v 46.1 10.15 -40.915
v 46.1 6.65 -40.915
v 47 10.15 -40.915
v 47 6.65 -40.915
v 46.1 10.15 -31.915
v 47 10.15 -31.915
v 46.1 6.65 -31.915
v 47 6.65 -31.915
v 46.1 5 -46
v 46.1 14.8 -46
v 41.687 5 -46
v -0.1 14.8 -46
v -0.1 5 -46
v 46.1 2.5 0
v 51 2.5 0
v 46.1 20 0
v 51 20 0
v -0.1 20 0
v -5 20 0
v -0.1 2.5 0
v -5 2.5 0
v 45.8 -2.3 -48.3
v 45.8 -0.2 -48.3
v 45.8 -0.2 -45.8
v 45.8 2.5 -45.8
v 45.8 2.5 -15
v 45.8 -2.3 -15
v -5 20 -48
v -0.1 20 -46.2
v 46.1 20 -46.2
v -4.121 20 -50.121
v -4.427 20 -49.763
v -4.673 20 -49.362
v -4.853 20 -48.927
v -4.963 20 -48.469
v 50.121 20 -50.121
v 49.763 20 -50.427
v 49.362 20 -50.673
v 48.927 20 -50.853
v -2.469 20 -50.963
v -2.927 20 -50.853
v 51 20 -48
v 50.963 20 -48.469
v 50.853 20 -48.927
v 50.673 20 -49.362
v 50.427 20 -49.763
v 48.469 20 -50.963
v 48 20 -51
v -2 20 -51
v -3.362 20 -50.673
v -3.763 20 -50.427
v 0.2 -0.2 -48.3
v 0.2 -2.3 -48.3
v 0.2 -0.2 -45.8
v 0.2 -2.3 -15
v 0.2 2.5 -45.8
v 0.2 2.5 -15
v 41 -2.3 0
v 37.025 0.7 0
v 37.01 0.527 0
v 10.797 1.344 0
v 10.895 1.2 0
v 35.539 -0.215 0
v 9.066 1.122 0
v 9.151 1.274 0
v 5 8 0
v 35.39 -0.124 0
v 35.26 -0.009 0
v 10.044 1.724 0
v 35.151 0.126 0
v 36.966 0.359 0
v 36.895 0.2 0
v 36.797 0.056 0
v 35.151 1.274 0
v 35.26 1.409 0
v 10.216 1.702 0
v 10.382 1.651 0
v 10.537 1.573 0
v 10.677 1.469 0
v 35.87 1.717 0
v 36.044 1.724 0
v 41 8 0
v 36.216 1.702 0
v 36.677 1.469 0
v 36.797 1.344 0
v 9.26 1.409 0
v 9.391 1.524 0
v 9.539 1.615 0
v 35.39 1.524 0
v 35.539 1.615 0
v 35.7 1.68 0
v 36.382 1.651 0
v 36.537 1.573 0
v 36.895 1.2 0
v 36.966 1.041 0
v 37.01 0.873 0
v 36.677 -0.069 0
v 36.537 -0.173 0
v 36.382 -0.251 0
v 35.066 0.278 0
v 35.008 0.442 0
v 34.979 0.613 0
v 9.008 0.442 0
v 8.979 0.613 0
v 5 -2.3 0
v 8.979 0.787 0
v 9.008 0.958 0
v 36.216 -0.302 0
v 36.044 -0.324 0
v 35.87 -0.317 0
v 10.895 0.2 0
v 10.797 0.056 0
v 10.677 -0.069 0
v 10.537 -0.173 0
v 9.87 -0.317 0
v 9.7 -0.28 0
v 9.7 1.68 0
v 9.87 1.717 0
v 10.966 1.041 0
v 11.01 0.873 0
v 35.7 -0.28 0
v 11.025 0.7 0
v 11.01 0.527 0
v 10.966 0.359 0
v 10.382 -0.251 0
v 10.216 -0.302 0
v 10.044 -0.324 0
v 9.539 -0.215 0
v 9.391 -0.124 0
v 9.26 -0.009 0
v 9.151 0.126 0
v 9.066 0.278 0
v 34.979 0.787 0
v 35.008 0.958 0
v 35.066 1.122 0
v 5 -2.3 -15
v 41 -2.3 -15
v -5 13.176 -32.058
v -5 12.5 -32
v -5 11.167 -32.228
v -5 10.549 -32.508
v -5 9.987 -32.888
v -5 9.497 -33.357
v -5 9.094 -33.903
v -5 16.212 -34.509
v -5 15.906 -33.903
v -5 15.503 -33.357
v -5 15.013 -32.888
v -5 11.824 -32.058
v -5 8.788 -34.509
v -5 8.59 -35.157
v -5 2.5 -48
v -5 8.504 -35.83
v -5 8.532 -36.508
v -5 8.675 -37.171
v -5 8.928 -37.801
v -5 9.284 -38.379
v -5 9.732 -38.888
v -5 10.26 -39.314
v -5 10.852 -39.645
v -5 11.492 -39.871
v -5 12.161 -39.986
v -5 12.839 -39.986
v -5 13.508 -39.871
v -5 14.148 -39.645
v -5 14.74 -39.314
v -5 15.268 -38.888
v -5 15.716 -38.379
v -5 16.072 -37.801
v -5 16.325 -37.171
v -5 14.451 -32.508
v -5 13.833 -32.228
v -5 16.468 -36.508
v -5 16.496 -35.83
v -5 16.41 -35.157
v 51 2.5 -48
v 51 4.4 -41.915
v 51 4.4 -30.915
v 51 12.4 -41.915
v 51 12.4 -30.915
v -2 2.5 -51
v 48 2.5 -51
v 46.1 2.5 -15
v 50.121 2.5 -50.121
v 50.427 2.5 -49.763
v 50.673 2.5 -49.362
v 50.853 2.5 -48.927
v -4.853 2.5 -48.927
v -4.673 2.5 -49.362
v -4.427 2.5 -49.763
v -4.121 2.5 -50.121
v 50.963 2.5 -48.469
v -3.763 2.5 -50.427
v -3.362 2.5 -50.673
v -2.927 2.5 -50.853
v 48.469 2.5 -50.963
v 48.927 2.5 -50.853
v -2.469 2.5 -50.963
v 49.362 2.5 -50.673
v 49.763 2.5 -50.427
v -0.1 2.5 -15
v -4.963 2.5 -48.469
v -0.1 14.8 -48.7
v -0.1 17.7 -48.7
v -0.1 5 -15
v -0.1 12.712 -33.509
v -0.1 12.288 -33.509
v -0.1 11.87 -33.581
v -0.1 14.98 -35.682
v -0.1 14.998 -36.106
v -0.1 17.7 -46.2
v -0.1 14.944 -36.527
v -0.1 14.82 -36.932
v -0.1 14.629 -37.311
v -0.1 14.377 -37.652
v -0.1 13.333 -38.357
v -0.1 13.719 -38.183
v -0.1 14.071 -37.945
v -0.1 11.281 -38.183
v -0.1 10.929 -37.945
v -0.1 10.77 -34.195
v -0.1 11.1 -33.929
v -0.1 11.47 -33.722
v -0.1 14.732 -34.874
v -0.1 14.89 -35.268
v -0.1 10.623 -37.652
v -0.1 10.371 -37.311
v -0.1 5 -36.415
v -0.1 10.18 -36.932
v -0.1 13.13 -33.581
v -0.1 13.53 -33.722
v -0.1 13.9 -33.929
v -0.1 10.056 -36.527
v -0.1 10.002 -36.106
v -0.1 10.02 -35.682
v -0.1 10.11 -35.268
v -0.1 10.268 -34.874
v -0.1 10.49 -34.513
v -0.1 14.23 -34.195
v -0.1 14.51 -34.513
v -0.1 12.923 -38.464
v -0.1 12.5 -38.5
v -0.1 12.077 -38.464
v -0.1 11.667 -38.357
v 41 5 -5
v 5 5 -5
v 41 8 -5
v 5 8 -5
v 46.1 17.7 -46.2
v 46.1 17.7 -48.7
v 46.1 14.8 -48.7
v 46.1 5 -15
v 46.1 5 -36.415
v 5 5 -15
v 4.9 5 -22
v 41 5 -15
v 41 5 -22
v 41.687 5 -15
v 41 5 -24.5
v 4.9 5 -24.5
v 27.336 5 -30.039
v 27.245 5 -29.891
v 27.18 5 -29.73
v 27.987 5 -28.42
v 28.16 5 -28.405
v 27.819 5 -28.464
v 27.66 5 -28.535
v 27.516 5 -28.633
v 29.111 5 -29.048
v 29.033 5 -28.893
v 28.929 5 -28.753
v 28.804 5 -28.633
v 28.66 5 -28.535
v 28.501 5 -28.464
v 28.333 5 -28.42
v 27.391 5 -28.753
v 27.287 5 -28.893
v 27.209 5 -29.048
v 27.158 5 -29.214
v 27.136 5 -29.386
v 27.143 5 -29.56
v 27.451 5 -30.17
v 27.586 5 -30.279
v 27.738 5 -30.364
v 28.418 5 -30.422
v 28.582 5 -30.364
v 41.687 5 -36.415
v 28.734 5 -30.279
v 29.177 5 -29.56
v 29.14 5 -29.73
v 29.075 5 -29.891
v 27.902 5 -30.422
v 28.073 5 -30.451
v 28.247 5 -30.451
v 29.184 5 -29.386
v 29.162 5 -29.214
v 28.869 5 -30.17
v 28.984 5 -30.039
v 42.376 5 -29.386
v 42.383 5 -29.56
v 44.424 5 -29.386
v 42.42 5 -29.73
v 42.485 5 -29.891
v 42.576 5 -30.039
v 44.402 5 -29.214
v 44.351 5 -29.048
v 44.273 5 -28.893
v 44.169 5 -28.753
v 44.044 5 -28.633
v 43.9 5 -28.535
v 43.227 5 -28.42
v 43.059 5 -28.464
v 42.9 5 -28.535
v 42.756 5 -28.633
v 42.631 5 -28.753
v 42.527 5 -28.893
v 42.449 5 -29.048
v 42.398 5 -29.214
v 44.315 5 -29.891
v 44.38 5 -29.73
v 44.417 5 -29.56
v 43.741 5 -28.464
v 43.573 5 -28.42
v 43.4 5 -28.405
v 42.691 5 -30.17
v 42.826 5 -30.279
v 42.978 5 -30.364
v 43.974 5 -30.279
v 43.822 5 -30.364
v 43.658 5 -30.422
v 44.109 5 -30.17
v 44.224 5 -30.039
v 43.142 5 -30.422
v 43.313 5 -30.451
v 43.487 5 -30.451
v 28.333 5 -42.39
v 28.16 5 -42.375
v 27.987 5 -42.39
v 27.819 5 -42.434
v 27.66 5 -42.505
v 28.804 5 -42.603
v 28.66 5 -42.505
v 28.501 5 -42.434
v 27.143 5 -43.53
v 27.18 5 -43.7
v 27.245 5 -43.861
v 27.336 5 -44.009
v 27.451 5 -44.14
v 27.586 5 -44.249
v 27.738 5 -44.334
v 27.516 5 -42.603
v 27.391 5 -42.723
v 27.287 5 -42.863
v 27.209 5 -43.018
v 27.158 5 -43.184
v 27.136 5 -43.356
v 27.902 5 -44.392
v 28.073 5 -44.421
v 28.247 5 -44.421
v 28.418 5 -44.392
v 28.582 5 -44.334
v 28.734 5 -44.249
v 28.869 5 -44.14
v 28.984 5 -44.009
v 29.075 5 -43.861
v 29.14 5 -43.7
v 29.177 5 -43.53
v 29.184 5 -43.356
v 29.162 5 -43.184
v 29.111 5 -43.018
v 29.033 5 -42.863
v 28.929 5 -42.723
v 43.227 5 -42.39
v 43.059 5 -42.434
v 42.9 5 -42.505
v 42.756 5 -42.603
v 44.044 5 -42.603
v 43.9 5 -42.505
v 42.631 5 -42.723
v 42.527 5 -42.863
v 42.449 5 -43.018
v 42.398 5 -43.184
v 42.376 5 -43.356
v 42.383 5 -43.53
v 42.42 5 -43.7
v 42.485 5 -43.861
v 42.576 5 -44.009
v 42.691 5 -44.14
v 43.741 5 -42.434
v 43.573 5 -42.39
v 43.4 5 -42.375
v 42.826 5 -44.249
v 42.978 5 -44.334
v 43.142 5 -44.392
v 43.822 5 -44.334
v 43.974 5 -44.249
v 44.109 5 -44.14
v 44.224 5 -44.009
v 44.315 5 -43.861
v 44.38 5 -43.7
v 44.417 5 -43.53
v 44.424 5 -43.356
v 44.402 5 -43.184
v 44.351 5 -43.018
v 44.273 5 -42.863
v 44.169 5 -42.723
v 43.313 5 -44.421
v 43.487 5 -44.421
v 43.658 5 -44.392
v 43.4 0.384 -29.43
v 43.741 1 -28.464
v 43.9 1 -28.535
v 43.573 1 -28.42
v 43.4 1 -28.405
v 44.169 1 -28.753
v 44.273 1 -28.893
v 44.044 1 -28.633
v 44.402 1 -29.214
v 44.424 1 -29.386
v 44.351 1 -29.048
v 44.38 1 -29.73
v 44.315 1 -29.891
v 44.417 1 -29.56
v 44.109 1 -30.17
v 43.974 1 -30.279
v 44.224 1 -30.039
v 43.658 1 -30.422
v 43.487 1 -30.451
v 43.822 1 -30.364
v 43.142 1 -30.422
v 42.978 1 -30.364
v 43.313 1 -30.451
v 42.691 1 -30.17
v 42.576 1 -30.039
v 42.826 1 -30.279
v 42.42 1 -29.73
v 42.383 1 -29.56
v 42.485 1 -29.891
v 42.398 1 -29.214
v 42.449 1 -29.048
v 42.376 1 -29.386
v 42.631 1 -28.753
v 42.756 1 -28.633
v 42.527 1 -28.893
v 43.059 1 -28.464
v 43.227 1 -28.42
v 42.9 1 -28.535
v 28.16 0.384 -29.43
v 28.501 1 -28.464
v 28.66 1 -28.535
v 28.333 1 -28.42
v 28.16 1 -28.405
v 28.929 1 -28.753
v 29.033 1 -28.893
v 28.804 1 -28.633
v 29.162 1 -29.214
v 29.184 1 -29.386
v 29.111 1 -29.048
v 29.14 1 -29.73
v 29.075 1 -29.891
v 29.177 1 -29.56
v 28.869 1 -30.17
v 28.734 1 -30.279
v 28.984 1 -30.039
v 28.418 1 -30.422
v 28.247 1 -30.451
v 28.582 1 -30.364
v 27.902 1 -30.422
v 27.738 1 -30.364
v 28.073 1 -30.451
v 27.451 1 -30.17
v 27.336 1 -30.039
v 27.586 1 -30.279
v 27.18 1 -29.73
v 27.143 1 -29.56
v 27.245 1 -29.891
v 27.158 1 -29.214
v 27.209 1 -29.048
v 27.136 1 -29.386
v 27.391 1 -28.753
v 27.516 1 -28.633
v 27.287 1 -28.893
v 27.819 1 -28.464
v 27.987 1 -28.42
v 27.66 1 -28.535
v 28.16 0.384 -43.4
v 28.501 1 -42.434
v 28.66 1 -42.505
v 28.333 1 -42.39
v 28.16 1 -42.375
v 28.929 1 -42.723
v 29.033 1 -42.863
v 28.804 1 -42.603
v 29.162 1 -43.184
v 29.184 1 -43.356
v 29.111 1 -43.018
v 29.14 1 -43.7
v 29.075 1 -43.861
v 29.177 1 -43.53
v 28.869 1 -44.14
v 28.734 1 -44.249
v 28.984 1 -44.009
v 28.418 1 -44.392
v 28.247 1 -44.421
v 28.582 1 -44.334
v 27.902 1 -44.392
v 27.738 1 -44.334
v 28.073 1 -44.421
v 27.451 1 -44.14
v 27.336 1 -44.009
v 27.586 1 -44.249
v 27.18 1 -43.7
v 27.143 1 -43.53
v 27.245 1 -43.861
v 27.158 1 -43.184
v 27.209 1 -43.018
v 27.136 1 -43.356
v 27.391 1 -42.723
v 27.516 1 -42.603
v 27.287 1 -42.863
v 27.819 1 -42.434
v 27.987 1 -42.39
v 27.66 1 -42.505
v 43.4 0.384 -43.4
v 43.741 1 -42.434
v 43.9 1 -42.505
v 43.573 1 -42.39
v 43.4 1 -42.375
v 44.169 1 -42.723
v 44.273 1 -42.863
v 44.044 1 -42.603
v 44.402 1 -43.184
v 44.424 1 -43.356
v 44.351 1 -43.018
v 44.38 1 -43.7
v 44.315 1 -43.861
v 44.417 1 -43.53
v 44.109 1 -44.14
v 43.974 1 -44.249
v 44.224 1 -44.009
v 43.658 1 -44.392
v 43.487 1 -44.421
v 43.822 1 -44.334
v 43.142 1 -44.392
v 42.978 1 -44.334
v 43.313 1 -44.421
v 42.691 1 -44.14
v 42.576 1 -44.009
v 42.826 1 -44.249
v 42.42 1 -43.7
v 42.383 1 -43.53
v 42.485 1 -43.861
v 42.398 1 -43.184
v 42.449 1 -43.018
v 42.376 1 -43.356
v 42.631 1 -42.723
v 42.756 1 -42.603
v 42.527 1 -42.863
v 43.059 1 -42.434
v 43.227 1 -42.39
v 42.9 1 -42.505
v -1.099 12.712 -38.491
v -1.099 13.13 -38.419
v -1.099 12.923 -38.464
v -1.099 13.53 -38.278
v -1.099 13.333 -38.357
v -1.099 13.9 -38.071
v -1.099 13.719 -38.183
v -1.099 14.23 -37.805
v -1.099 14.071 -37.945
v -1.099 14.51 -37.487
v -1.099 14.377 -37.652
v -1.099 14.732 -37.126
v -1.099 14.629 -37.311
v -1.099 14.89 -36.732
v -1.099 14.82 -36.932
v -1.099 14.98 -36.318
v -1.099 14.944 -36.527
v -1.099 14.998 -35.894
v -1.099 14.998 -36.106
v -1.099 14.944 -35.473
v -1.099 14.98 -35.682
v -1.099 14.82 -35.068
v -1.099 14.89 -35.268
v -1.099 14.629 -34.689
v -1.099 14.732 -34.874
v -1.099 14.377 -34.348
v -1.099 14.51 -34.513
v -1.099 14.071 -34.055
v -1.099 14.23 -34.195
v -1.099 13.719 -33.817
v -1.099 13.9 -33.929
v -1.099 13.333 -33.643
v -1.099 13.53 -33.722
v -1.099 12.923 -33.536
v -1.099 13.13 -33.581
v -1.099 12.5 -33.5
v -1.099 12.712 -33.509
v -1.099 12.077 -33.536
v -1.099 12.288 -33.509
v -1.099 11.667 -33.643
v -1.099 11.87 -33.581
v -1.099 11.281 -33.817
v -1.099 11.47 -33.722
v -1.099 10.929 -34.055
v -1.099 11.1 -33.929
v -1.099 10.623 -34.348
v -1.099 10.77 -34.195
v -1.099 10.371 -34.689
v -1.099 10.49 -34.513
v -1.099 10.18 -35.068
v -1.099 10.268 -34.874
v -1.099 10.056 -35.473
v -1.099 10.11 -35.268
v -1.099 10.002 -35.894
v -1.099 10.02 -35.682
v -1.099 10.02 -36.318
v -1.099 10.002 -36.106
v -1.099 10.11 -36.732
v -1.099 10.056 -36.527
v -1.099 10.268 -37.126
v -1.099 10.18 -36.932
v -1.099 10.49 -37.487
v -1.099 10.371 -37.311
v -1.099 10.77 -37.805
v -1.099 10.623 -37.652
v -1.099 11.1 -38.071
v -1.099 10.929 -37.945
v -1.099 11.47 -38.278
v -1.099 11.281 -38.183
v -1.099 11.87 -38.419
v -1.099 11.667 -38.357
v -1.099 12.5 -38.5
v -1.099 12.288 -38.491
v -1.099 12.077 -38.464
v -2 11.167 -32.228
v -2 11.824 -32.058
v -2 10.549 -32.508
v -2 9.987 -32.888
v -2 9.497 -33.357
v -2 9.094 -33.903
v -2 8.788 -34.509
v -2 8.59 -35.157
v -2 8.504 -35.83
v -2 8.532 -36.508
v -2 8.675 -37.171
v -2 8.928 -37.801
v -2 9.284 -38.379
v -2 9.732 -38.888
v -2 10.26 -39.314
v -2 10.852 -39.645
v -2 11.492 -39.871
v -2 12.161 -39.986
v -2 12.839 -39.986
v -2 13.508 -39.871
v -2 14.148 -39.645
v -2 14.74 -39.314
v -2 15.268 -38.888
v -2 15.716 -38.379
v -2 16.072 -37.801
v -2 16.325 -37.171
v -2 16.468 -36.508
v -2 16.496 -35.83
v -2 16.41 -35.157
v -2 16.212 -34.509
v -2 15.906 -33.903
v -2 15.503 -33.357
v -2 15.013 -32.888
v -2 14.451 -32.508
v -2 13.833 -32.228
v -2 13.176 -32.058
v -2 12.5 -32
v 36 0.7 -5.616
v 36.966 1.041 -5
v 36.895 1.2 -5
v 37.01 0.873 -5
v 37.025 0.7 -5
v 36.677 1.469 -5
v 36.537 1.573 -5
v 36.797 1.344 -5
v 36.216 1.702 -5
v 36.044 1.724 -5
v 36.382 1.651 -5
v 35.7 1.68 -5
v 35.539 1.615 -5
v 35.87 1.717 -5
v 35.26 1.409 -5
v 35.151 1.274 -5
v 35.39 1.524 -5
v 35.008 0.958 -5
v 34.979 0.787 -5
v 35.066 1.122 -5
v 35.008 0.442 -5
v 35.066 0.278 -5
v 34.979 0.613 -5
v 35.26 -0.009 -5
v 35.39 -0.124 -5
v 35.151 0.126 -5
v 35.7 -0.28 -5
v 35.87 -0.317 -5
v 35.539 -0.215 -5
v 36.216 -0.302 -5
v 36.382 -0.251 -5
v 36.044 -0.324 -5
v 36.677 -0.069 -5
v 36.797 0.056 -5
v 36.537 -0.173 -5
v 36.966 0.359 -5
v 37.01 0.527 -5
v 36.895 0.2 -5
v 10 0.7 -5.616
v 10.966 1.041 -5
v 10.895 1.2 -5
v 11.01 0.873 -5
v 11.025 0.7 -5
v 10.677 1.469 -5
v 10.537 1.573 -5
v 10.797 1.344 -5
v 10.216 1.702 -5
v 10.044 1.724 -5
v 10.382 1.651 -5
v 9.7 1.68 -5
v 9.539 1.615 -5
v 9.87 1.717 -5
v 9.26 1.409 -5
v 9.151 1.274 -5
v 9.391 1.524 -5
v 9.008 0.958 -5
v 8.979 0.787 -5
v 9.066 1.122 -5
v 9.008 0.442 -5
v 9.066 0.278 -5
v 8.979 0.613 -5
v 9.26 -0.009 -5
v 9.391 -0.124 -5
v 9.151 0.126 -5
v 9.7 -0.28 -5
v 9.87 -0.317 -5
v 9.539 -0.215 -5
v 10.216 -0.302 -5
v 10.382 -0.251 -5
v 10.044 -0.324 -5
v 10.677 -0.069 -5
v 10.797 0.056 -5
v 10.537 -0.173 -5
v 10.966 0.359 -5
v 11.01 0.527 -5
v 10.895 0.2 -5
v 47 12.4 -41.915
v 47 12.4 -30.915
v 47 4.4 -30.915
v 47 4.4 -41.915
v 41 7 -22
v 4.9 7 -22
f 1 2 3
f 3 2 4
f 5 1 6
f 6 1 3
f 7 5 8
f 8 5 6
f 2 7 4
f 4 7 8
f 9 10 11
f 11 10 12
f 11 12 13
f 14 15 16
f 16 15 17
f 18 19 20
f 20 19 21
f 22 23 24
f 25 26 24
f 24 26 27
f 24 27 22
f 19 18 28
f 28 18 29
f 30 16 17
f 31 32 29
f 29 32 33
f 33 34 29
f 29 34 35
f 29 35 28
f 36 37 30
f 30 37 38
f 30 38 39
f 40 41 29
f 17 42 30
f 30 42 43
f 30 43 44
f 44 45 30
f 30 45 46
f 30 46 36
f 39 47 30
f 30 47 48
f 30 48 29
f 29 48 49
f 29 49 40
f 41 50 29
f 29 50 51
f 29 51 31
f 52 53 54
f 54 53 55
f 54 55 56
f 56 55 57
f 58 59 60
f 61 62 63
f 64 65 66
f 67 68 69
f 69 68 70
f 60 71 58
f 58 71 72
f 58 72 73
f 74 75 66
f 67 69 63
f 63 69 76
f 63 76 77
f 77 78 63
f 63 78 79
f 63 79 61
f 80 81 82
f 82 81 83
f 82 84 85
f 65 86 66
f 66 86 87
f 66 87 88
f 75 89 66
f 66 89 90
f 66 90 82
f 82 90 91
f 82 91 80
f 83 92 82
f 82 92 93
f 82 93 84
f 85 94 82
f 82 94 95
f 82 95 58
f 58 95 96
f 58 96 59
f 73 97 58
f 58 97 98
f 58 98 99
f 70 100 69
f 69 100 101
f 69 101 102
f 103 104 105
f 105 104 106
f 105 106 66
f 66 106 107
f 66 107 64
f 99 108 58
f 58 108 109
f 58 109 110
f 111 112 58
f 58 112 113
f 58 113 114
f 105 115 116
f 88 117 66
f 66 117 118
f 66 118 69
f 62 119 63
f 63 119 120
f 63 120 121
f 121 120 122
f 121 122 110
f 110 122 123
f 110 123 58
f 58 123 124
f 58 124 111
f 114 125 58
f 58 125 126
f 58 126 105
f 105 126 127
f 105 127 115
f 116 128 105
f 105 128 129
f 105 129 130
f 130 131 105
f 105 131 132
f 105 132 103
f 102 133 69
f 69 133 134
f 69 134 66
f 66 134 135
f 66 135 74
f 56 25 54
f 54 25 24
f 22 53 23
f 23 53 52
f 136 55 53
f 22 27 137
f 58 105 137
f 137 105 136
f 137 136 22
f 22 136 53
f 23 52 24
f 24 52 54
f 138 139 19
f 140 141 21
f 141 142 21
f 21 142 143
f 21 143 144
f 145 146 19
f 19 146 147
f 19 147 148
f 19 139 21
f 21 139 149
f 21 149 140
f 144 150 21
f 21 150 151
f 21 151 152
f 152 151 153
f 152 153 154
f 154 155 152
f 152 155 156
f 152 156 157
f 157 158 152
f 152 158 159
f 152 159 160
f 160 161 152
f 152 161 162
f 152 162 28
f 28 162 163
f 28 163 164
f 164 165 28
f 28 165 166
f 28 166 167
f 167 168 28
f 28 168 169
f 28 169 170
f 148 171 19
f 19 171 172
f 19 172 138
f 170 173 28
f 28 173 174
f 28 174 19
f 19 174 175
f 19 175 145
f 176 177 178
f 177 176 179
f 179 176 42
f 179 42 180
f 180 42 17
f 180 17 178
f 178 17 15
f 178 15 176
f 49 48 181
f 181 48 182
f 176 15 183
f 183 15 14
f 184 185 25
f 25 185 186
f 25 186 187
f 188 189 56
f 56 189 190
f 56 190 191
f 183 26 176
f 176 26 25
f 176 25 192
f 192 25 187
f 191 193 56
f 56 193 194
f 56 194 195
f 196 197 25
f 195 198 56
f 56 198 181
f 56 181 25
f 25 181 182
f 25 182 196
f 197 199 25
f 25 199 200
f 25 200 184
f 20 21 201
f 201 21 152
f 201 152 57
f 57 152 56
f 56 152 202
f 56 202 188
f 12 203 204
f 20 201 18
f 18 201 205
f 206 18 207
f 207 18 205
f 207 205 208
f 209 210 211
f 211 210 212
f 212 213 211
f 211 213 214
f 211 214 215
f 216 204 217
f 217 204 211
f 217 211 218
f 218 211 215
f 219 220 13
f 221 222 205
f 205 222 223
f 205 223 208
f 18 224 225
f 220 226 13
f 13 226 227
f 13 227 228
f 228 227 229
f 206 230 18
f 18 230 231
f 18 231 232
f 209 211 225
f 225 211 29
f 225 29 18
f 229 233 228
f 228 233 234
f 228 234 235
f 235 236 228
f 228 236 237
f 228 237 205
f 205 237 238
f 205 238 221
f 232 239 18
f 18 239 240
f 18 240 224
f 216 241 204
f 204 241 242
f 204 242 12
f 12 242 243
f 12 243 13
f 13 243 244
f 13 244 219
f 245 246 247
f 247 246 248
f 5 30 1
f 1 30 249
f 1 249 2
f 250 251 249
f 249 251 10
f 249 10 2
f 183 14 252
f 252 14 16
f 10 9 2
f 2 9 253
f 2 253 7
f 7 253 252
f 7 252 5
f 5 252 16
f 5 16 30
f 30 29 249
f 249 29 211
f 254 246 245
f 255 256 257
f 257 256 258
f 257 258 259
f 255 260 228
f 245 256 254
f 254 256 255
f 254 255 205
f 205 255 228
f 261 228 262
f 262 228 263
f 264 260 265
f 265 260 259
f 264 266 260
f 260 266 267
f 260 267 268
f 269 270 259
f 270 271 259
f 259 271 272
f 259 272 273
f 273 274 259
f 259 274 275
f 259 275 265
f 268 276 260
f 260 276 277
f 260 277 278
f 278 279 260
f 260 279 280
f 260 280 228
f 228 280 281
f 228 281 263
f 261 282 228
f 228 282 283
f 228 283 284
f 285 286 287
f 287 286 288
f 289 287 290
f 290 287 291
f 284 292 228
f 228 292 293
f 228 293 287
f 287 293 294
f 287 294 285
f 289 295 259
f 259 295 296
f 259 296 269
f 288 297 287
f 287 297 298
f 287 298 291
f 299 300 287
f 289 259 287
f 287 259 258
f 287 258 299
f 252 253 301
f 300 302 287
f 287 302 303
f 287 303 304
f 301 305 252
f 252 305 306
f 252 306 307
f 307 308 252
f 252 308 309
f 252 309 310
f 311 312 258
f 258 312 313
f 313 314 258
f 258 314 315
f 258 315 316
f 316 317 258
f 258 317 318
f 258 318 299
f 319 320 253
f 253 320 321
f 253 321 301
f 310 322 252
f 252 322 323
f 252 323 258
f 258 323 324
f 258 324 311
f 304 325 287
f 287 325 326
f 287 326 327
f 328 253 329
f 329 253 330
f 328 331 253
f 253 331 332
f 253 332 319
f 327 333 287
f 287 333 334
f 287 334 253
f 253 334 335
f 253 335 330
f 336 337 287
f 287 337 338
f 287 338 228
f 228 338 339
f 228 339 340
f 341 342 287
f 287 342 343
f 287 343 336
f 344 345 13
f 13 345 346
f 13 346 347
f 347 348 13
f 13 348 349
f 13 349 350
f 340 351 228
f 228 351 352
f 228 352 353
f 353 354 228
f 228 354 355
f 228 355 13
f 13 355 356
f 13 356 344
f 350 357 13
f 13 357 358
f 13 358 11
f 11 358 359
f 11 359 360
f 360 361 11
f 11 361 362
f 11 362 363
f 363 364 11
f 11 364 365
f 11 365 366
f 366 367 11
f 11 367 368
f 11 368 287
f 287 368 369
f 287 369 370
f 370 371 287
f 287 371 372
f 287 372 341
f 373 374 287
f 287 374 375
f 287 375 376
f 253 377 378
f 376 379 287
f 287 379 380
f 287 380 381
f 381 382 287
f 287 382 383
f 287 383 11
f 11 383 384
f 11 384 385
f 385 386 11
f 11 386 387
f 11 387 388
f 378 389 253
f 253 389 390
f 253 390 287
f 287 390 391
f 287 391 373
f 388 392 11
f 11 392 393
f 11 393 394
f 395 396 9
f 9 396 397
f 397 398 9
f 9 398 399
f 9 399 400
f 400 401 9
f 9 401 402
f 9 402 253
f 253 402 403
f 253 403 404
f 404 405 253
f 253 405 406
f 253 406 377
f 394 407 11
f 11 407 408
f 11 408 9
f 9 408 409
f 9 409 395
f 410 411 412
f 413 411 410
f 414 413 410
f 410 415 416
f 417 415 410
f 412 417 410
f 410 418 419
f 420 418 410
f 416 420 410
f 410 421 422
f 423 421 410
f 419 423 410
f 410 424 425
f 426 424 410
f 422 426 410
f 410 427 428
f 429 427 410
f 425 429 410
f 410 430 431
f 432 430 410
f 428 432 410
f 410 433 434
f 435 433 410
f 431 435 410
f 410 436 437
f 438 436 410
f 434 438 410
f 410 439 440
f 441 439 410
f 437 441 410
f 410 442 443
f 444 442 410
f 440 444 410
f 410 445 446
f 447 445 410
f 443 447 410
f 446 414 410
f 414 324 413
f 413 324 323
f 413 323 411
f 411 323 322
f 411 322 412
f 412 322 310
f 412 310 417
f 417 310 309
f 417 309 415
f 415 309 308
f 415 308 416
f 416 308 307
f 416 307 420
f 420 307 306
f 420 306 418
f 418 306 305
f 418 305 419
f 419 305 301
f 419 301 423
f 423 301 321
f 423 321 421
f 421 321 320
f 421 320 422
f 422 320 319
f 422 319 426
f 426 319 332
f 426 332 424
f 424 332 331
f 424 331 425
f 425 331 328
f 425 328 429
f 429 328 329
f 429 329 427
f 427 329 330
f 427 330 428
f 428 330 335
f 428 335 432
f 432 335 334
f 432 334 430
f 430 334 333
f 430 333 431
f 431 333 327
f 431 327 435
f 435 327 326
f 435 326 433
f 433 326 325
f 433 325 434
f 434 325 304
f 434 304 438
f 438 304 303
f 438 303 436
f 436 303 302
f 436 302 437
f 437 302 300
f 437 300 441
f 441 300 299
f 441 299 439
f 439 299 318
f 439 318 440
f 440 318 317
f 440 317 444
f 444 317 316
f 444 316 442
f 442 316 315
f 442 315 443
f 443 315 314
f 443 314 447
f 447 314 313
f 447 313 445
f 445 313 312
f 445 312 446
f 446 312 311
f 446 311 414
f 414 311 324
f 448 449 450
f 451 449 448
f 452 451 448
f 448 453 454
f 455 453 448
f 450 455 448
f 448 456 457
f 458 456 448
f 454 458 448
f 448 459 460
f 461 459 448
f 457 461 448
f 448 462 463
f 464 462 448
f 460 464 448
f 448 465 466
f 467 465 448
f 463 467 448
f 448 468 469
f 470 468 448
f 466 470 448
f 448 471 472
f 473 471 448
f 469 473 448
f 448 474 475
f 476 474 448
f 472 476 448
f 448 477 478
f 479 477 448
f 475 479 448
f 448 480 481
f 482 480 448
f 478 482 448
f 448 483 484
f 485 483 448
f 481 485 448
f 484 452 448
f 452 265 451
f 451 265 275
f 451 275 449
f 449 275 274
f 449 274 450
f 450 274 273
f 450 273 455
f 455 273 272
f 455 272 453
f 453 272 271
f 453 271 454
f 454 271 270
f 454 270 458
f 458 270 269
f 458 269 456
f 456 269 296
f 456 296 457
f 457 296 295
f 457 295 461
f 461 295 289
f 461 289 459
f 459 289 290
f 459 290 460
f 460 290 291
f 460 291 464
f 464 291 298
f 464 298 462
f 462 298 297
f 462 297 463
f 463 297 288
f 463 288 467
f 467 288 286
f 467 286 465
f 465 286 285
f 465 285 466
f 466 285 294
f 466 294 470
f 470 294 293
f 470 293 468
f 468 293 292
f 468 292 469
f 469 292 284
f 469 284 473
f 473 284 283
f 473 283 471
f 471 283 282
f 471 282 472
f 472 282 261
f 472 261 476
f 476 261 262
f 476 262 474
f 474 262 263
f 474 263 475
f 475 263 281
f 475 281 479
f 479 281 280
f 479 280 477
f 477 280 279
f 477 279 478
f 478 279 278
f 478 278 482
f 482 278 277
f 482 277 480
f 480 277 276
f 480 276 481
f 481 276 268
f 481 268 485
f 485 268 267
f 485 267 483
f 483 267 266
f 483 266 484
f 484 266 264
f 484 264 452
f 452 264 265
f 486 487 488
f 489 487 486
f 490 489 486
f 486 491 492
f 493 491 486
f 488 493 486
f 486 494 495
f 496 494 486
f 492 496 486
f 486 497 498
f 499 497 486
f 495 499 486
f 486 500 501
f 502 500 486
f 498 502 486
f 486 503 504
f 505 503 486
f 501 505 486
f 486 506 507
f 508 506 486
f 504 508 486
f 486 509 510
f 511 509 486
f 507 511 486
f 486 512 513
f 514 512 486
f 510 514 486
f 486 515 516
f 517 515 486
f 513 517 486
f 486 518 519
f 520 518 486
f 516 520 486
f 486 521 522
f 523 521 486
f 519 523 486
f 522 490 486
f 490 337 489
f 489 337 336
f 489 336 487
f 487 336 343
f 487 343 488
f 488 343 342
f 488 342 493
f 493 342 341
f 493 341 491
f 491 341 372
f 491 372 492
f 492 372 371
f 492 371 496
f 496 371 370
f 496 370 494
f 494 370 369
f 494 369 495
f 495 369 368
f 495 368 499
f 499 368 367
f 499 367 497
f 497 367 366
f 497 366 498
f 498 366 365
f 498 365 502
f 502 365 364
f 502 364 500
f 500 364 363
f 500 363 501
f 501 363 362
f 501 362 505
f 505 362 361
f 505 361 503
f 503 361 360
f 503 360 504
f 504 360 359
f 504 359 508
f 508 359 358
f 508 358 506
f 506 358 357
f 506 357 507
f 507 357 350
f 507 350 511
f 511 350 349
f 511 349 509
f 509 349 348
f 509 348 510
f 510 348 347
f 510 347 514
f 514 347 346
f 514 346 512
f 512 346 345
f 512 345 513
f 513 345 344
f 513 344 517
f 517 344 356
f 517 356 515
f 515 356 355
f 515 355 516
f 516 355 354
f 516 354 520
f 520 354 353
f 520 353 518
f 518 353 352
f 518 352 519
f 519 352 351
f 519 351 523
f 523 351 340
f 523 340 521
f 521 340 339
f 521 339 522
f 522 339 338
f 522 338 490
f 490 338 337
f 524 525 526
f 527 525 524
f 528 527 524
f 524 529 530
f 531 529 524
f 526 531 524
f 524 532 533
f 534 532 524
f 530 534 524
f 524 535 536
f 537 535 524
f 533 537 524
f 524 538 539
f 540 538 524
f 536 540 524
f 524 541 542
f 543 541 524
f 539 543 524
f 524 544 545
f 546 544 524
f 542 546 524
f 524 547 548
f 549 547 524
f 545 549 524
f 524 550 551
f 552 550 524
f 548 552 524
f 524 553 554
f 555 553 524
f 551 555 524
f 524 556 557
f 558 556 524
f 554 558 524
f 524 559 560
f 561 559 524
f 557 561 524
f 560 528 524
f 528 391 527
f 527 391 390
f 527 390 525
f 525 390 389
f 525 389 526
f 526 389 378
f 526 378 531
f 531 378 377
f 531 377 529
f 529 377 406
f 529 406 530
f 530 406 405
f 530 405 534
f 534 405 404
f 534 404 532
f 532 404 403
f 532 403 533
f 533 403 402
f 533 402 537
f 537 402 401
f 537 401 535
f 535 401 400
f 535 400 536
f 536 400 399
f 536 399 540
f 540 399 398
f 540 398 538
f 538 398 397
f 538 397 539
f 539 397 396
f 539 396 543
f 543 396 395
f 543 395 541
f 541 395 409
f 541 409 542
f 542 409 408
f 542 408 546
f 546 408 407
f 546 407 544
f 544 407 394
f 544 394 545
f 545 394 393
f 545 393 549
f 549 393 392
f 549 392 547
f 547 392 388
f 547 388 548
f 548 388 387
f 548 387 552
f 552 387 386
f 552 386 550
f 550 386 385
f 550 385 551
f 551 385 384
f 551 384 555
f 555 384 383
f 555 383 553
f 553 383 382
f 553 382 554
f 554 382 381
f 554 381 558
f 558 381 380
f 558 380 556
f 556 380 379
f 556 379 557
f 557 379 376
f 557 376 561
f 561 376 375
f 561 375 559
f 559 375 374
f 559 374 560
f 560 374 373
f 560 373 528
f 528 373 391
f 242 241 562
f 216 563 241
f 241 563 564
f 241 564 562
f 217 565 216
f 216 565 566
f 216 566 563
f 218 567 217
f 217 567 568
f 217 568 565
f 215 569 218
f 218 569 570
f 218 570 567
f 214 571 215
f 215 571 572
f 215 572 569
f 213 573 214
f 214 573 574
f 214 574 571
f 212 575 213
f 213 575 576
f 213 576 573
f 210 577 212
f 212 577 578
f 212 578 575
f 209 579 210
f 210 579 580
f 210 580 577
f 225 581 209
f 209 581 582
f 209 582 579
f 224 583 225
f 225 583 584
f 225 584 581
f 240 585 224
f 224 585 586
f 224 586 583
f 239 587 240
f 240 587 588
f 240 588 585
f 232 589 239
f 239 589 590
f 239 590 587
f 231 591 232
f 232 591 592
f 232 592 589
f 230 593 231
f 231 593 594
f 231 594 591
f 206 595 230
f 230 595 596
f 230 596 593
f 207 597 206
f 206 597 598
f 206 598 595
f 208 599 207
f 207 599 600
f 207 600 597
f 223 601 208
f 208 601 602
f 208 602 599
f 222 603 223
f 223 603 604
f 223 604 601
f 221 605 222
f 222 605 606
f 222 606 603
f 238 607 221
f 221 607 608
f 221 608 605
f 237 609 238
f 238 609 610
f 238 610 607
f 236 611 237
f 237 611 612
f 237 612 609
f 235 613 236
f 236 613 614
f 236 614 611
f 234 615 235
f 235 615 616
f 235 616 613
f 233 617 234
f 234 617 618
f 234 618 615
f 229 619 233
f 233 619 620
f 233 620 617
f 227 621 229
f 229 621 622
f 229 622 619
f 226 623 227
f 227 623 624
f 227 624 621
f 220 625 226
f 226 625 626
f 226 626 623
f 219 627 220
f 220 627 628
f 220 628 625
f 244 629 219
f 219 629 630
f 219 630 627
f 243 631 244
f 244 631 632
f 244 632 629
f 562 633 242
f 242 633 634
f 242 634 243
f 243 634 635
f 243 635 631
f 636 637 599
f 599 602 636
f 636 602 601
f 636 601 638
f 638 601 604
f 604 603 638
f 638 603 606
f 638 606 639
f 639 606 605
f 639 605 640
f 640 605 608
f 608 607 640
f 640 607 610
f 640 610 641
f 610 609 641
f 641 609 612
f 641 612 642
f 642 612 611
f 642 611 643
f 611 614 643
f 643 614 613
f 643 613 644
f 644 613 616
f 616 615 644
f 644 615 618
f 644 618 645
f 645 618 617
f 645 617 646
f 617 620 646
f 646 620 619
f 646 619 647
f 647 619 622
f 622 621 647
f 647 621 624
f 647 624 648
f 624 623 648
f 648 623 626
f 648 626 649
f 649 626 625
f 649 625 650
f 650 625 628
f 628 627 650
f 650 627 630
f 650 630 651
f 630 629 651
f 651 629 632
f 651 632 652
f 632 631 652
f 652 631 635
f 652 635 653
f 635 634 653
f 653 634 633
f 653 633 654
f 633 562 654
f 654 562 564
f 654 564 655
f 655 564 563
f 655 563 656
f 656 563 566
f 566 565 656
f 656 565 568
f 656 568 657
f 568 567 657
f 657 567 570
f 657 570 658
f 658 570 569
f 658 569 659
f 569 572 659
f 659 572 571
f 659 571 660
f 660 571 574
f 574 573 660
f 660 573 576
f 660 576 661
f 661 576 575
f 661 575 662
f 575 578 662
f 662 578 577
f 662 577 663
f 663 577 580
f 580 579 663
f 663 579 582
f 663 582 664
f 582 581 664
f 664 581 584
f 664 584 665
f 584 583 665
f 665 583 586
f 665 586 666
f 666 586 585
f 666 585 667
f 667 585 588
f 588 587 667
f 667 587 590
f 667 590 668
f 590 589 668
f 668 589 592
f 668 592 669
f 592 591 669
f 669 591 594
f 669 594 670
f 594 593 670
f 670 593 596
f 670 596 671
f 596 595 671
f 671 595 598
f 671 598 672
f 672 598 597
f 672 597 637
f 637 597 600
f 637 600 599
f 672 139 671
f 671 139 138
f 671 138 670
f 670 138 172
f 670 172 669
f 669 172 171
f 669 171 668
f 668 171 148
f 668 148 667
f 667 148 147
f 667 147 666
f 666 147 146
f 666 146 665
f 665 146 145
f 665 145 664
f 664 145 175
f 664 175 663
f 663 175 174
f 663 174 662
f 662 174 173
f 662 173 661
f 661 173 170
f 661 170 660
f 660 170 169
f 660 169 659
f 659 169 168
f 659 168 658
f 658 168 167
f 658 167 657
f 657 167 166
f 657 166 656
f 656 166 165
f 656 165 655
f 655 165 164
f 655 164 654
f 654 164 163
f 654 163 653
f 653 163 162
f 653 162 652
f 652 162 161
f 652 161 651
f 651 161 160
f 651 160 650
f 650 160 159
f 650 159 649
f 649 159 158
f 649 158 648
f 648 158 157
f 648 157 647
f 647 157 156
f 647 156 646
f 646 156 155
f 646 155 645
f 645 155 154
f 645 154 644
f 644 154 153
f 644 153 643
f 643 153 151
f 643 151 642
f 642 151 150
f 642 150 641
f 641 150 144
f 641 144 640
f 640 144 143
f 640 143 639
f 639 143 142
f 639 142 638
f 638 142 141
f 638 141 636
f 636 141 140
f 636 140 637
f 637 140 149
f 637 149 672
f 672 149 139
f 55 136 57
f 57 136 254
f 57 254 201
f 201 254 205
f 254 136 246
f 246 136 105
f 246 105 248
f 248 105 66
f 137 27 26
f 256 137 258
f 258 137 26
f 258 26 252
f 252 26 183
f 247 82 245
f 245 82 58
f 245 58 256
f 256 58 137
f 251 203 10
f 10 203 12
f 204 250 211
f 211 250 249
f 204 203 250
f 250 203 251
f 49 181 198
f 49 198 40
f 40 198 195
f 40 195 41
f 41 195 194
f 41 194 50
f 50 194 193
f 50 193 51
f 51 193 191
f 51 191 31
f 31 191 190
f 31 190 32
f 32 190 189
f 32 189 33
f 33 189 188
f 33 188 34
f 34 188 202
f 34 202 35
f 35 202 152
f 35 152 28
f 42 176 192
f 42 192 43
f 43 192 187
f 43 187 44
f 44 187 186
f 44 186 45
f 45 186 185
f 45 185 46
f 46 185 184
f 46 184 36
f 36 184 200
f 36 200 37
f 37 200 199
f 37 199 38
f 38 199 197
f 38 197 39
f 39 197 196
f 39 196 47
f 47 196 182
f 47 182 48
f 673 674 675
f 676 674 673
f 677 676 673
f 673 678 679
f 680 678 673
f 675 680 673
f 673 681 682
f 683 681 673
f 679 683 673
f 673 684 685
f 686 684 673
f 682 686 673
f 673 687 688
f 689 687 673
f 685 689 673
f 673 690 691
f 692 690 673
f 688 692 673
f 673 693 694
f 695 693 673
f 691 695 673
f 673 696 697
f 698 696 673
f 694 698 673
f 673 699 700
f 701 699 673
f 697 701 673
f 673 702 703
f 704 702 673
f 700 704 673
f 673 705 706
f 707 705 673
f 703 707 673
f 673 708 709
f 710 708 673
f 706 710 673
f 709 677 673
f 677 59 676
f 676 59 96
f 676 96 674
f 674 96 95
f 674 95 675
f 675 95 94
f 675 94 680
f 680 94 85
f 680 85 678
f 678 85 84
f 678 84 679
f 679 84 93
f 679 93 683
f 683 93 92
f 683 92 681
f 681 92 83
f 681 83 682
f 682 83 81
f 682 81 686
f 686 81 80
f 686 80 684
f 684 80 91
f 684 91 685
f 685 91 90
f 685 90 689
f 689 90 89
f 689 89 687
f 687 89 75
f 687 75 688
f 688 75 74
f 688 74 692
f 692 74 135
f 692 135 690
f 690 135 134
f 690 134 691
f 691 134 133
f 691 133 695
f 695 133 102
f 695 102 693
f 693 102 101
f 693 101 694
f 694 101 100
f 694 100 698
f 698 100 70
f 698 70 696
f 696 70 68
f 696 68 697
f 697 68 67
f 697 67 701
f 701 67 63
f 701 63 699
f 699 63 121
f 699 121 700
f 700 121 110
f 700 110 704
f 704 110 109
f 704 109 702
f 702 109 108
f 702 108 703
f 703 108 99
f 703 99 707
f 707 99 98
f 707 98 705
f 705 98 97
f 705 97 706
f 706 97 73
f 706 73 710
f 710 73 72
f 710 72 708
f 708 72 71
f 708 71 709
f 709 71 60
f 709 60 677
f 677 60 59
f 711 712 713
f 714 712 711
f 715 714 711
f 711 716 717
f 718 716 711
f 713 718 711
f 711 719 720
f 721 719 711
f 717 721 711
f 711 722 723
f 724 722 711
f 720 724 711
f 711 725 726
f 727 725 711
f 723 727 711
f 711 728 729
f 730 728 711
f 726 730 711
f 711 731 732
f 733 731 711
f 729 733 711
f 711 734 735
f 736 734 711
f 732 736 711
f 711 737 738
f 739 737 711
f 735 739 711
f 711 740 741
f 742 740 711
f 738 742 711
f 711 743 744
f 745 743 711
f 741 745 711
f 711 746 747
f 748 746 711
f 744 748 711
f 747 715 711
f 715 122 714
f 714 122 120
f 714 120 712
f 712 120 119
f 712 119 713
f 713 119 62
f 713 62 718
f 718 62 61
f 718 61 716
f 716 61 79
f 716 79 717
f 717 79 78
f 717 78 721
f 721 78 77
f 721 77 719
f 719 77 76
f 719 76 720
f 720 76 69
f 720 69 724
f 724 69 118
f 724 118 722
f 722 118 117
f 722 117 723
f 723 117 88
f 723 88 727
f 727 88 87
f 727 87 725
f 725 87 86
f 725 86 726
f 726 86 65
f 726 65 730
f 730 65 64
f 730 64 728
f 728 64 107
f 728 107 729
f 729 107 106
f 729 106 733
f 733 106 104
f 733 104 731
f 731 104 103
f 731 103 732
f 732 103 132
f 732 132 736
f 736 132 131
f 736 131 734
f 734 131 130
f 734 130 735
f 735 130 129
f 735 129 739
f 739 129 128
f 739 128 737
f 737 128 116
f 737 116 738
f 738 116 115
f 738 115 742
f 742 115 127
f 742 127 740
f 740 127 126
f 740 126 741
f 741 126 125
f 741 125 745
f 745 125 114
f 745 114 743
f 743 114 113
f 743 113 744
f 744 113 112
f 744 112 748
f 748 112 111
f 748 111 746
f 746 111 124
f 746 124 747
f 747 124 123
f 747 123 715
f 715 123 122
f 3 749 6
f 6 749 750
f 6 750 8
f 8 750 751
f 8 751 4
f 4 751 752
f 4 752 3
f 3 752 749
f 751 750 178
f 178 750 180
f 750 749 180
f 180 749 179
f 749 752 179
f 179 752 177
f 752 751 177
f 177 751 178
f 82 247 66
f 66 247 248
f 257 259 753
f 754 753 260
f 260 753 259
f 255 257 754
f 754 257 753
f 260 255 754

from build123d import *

# Parameters (mm, degrees)
SKETCH1_W                    = 46
SKETCH1_H                    = 46
BOSS_EXTRUDE1_DEPTH          = 2.5
SKETCH2_W                    = 46
SKETCH2_H                    = 48.5
BOSS_EXTRUDE2_DEPTH          = 2.5
SKETCH5_W                    = 56
SKETCH5_H                    = 51
BOSS_EXTRUDE5_DEPTH          = 2.5
SKETCH6_W                    = 56
SKETCH6_H                    = 51
SKETCH6_W_2                  = 46
SKETCH6_H_2                  = 41
BOSS_EXTRUDE6_DEPTH          = 15
M2_5X0_45_TAPPED_HOLE1_D     = 2.05
M2_5X0_45_TAPPED_HOLE1_DEPTH = 4
M2_5X0_45_TAPPED_HOLE1_TIP   = 0.615882135
F_5_0MM_DOWEL_HOLE1_D        = 5
F_5_0MM_DOWEL_HOLE1_DEPTH    = 6.35
F_5_0MM_DOWEL_HOLE1_TIP      = 1.502151548
F_8_0MM_DOWEL_HOLE1_D        = 8
F_8_0MM_DOWEL_HOLE1_DEPTH    = 3
F_8_0MM_DOWEL_HOLE1_TIP      = 2.403442476
SKETCH15_W                   = 5
SKETCH15_H                   = 22.5
CUT_EXTRUDE1_DEPTH           = 15
SKETCH16_W                   = 46
SKETCH16_H                   = 2.5
CUT_EXTRUDE2_DEPTH           = 2.5
FILLET1_R                    = 3
MOVE_FACE1_BY                = 0.2
MOVE_FACE1_2_BY              = 0.2
MOVE_FACE1_3_BY              = 0.2
MOVE_FACE1_4_BY              = 0.2
MOVE_FACE1_5_BY              = 0.2
MOVE_FACE1_6_BY              = 0.2
MOVE_FACE1_7_BY              = 0.2
MOVE_FACE1_8_BY              = 0.2
MOVE_FACE2_BY                = 0.2
MOVE_FACE2_2_BY              = 0.2
M2_5X0_45_TAPPED_HOLE2_D     = 2.05
M2_5X0_45_TAPPED_HOLE2_DEPTH = 5
M2_5X0_45_TAPPED_HOLE2_TIP   = 0.615882135
SKETCH20_W                   = 9
SKETCH20_H                   = 3.5
CUT_EXTRUDE4_DEPTH           = 75.846509605
SKETCH21_W                   = 11
SKETCH21_H                   = 8
CUT_EXTRUDE5_DEPTH           = 4
MOVE_START                   = -0.1
MOVE_FACE3_OUTLINE_R         = 2.5
MOVE_FACE3_DEPTH             = 0.1
MOVE_START_2                 = 46
MOVE_FACE3_2_OUTLINE_W       = 3.5
MOVE_FACE3_2_OUTLINE_H       = 9
MOVE_FACE3_2_DEPTH           = 0.1
SKETCH17_W                   = 36
SKETCH17_H                   = 5
CUT_EXTRUDE7_DEPTH           = 12
BOSS_EXTRUDE7_START          = 5
BOSS_EXTRUDE7_DEPTH          = 36.1


# Read off the part's stored shape, not the designer's step: Move Face3
with BuildPart() as part:
    # Sketch1 → Boss-Extrude1 (new body)
    with BuildSketch(Plane(origin=(0, 0, 0), x_dir=(1, 0, 0), z_dir=(0, 1, 0))):
        with Locations((23, 23)):
            Rectangle(SKETCH1_W, SKETCH1_H)
    extrude(amount=BOSS_EXTRUDE1_DEPTH)

    # Sketch2 → Boss-Extrude2 (add)
    with BuildSketch(Plane.XZ):
        with Locations((23, -24.25)):
            Rectangle(SKETCH2_W, SKETCH2_H)
    extrude(amount=BOSS_EXTRUDE2_DEPTH)

    # Sketch5 → Boss-Extrude5 (add)
    with BuildSketch(Plane(origin=(0, 2.5, 0), x_dir=(1, 0, 0), z_dir=(0, 1, 0))):
        with Locations((23, 25.5)):
            Rectangle(SKETCH5_W, SKETCH5_H)
    extrude(amount=BOSS_EXTRUDE5_DEPTH)

    # Sketch6 → Boss-Extrude6 (add)
    with BuildSketch(Plane(origin=(0, 5, 0), x_dir=(1, 0, 0), z_dir=(0, 1, 0))):
        with Locations((23, 25.5)):
            Rectangle(SKETCH6_W, SKETCH6_H)
        with Locations((23, 25.5)):
            Rectangle(SKETCH6_W_2, SKETCH6_H_2, mode=Mode.SUBTRACT)
    extrude(amount=BOSS_EXTRUDE6_DEPTH)

    # M2.5x0.45 Tapped Hole1
    with Locations(Plane(origin=(0, 5, 0), x_dir=(1, 0, 0), z_dir=(0, 1, 0))):
        with Locations((43.4, 43.4), (28.16, 43.4), (28.16, 29.43), (43.4, 29.43)):
            Hole(M2_5X0_45_TAPPED_HOLE1_D / 2, depth=M2_5X0_45_TAPPED_HOLE1_DEPTH)
            with Locations((0, 0, -(M2_5X0_45_TAPPED_HOLE1_DEPTH + M2_5X0_45_TAPPED_HOLE1_TIP / 2))):  # 118° drill point
                Cone(0, M2_5X0_45_TAPPED_HOLE1_D / 2, M2_5X0_45_TAPPED_HOLE1_TIP, mode=Mode.SUBTRACT)

    # Ø5.0mm Dowel Hole1
    with Locations(Plane(origin=(0, 0, 0), x_dir=(0, 0, -1), z_dir=(1, 0, 0))):
        with Locations((36, 12.5)):
            Hole(F_5_0MM_DOWEL_HOLE1_D / 2, depth=F_5_0MM_DOWEL_HOLE1_DEPTH)
            with Locations((0, 0, -(F_5_0MM_DOWEL_HOLE1_DEPTH + F_5_0MM_DOWEL_HOLE1_TIP / 2))):  # 118° drill point
                Cone(0, F_5_0MM_DOWEL_HOLE1_D / 2, F_5_0MM_DOWEL_HOLE1_TIP, mode=Mode.SUBTRACT)

    # Ø8.0mm Dowel Hole1
    with Locations(Plane.ZY.offset(5)):
        with Locations((-36, 12.5)):
            Hole(F_8_0MM_DOWEL_HOLE1_D / 2, depth=F_8_0MM_DOWEL_HOLE1_DEPTH)
            with Locations((0, 0, -(F_8_0MM_DOWEL_HOLE1_DEPTH + F_8_0MM_DOWEL_HOLE1_TIP / 2))):  # 118° drill point
                Cone(0, F_8_0MM_DOWEL_HOLE1_D / 2, F_8_0MM_DOWEL_HOLE1_TIP, mode=Mode.SUBTRACT)

    # Sketch15 → Cut-Extrude1 (cut)
    with BuildSketch(Plane.XY):
        with Locations((43.5, 8.75)):
            Rectangle(SKETCH15_W, SKETCH15_H)
        with Locations((2.5, 8.75)):
            Rectangle(SKETCH15_W, SKETCH15_H)
    extrude(amount=-CUT_EXTRUDE1_DEPTH, mode=Mode.SUBTRACT)

    # Sketch16 → Cut-Extrude2 (cut)
    with BuildSketch(Plane.XY.offset(-46)):
        with Locations((23, 16.25)):
            Rectangle(SKETCH16_W, SKETCH16_H)
    extrude(amount=-CUT_EXTRUDE2_DEPTH, mode=Mode.SUBTRACT)

    # Fillet1
    fillet1_edges = [part.edges().sort_by_distance(p)[0] for p in [
        (-5, 11.25, -51),
        (51, 11.25, -51),
    ]]
    fillet(fillet1_edges, radius=FILLET1_R)

    # Move Face1: a face moved inward by 0.2
    extrude(part.faces().sort_by_distance((23, -2.5, -25.457352235))[0], amount=MOVE_FACE1_BY, dir=(0, 1, 0), mode=Mode.SUBTRACT)

    # Move Face1 2: a face moved inward by 0.2
    extrude(part.faces().sort_by_distance((23, 16.25, -48.5))[0], amount=MOVE_FACE1_2_BY, dir=(0, 0, -1), mode=Mode.SUBTRACT)

    # Move Face1 3: a face moved inward by 0.2
    extrude(part.faces().sort_by_distance((23, 17.5, -47.25))[0], amount=MOVE_FACE1_3_BY, dir=(0, 1, 0), mode=Mode.SUBTRACT)

    # Move Face1 4: a face moved inward by 0.2
    extrude(part.faces().sort_by_distance((23, 18.75, -46))[0], amount=MOVE_FACE1_4_BY, dir=(0, 0, -1), mode=Mode.SUBTRACT)

    # Move Face1 5: a face moved inward by 0.2
    extrude(part.faces().sort_by_distance((23, 0, -47.25))[0], amount=MOVE_FACE1_5_BY, dir=(0, -1, 0), mode=Mode.SUBTRACT)

    # Move Face1 6: a face moved inward by 0.2
    extrude(part.faces().sort_by_distance((23, 1.25, -46))[0], amount=MOVE_FACE1_6_BY, dir=(0, 0, 1), mode=Mode.SUBTRACT)

    # Move Face1 7: a face moved inward by 0.2
    extrude(part.faces().sort_by_distance((23, -1.25, -48.5))[0], amount=MOVE_FACE1_7_BY, dir=(0, 0, 1), mode=Mode.SUBTRACT)

    # Move Face1 8: a face moved inward by 0.2
    extrude(part.faces().sort_by_distance((23, 15, -47.25))[0], amount=MOVE_FACE1_8_BY, dir=(0, -1, 0), mode=Mode.SUBTRACT)

    # Move Face2: a face moved inward by 0.2
    extrude(part.faces().sort_by_distance((46, 0.053703704, -30.970987654))[0], amount=MOVE_FACE2_BY, dir=(-1, 0, 0), mode=Mode.SUBTRACT)

    # Move Face2 2: a face moved inward by 0.2
    extrude(part.faces().sort_by_distance((0, 0.053703704, -30.970987654))[0], amount=MOVE_FACE2_2_BY, dir=(1, 0, 0), mode=Mode.SUBTRACT)

    # M2.5x0.45 Tapped Hole2
    with Locations(Plane.XY):
        with Locations((10, 0.7), (36, 0.7)):
            Hole(M2_5X0_45_TAPPED_HOLE2_D / 2, depth=M2_5X0_45_TAPPED_HOLE2_DEPTH)
            with Locations((0, 0, -(M2_5X0_45_TAPPED_HOLE2_DEPTH + M2_5X0_45_TAPPED_HOLE2_TIP / 2))):  # 118° drill point
                Cone(0, M2_5X0_45_TAPPED_HOLE2_D / 2, M2_5X0_45_TAPPED_HOLE2_TIP, mode=Mode.SUBTRACT)

    # Sketch20 → Cut-Extrude4 (cut, through all)
    with BuildSketch(Plane.ZY.offset(-46)):
        with Locations((-36.415, 8.4)):
            Rectangle(SKETCH20_W, SKETCH20_H)
    extrude(amount=-CUT_EXTRUDE4_DEPTH, mode=Mode.SUBTRACT)

    # Sketch21 → Cut-Extrude5 (cut)
    with BuildSketch(Plane(origin=(51, 0, 0), x_dir=(0, 0, -1), z_dir=(1, 0, 0))):
        with Locations((36.415, 8.4)):
            Rectangle(SKETCH21_W, SKETCH21_H)
    extrude(amount=-CUT_EXTRUDE5_DEPTH, mode=Mode.SUBTRACT)

    # Move Face3 outline → Move Face3 (cut)
    with BuildSketch(Plane.YZ.offset(MOVE_START)):
        Polygon((5, -46), (14.8, -46), (14.8, -48.7), (17.7, -48.7), (17.7, -46.2), (20, -46.2), (20, 0), (2.5, 0), (2.5, -15), (5, -15), align=None)
        with Locations((12.5, -36)):
            Circle(MOVE_FACE3_OUTLINE_R, mode=Mode.SUBTRACT)
    extrude(amount=MOVE_FACE3_DEPTH, mode=Mode.SUBTRACT)

    # Move Face3 2 outline → Move Face3 2 (cut)
    with BuildSketch(Plane.YZ.offset(MOVE_START_2)):
        Polygon((5, -46), (14.8, -46), (14.8, -48.7), (17.7, -48.7), (17.7, -46.2), (20, -46.2), (20, 0), (2.5, 0), (2.5, -15), (5, -15), align=None)
        with Locations((8.4, -36.415)):
            Rectangle(MOVE_FACE3_2_OUTLINE_W, MOVE_FACE3_2_OUTLINE_H, mode=Mode.SUBTRACT)
    extrude(amount=MOVE_FACE3_2_DEPTH, mode=Mode.SUBTRACT)

    # Sketch17 → Cut-Extrude7 (cut)
    with BuildSketch(Plane(origin=(0, 20, 0), x_dir=(1, 0, 0), z_dir=(0, 1, 0))):
        with Locations((23, 2.5)):
            Rectangle(SKETCH17_W, SKETCH17_H)
    extrude(amount=-CUT_EXTRUDE7_DEPTH, mode=Mode.SUBTRACT)

    # Sketch8 → Boss-Extrude7 (add)
    with BuildSketch(Plane.ZY.offset(-46).offset(BOSS_EXTRUDE7_START)):
        Polygon((-22, 5), (-24.5, 5), (-22, 7), align=None)
    extrude(amount=BOSS_EXTRUDE7_DEPTH)


solid = part.part
